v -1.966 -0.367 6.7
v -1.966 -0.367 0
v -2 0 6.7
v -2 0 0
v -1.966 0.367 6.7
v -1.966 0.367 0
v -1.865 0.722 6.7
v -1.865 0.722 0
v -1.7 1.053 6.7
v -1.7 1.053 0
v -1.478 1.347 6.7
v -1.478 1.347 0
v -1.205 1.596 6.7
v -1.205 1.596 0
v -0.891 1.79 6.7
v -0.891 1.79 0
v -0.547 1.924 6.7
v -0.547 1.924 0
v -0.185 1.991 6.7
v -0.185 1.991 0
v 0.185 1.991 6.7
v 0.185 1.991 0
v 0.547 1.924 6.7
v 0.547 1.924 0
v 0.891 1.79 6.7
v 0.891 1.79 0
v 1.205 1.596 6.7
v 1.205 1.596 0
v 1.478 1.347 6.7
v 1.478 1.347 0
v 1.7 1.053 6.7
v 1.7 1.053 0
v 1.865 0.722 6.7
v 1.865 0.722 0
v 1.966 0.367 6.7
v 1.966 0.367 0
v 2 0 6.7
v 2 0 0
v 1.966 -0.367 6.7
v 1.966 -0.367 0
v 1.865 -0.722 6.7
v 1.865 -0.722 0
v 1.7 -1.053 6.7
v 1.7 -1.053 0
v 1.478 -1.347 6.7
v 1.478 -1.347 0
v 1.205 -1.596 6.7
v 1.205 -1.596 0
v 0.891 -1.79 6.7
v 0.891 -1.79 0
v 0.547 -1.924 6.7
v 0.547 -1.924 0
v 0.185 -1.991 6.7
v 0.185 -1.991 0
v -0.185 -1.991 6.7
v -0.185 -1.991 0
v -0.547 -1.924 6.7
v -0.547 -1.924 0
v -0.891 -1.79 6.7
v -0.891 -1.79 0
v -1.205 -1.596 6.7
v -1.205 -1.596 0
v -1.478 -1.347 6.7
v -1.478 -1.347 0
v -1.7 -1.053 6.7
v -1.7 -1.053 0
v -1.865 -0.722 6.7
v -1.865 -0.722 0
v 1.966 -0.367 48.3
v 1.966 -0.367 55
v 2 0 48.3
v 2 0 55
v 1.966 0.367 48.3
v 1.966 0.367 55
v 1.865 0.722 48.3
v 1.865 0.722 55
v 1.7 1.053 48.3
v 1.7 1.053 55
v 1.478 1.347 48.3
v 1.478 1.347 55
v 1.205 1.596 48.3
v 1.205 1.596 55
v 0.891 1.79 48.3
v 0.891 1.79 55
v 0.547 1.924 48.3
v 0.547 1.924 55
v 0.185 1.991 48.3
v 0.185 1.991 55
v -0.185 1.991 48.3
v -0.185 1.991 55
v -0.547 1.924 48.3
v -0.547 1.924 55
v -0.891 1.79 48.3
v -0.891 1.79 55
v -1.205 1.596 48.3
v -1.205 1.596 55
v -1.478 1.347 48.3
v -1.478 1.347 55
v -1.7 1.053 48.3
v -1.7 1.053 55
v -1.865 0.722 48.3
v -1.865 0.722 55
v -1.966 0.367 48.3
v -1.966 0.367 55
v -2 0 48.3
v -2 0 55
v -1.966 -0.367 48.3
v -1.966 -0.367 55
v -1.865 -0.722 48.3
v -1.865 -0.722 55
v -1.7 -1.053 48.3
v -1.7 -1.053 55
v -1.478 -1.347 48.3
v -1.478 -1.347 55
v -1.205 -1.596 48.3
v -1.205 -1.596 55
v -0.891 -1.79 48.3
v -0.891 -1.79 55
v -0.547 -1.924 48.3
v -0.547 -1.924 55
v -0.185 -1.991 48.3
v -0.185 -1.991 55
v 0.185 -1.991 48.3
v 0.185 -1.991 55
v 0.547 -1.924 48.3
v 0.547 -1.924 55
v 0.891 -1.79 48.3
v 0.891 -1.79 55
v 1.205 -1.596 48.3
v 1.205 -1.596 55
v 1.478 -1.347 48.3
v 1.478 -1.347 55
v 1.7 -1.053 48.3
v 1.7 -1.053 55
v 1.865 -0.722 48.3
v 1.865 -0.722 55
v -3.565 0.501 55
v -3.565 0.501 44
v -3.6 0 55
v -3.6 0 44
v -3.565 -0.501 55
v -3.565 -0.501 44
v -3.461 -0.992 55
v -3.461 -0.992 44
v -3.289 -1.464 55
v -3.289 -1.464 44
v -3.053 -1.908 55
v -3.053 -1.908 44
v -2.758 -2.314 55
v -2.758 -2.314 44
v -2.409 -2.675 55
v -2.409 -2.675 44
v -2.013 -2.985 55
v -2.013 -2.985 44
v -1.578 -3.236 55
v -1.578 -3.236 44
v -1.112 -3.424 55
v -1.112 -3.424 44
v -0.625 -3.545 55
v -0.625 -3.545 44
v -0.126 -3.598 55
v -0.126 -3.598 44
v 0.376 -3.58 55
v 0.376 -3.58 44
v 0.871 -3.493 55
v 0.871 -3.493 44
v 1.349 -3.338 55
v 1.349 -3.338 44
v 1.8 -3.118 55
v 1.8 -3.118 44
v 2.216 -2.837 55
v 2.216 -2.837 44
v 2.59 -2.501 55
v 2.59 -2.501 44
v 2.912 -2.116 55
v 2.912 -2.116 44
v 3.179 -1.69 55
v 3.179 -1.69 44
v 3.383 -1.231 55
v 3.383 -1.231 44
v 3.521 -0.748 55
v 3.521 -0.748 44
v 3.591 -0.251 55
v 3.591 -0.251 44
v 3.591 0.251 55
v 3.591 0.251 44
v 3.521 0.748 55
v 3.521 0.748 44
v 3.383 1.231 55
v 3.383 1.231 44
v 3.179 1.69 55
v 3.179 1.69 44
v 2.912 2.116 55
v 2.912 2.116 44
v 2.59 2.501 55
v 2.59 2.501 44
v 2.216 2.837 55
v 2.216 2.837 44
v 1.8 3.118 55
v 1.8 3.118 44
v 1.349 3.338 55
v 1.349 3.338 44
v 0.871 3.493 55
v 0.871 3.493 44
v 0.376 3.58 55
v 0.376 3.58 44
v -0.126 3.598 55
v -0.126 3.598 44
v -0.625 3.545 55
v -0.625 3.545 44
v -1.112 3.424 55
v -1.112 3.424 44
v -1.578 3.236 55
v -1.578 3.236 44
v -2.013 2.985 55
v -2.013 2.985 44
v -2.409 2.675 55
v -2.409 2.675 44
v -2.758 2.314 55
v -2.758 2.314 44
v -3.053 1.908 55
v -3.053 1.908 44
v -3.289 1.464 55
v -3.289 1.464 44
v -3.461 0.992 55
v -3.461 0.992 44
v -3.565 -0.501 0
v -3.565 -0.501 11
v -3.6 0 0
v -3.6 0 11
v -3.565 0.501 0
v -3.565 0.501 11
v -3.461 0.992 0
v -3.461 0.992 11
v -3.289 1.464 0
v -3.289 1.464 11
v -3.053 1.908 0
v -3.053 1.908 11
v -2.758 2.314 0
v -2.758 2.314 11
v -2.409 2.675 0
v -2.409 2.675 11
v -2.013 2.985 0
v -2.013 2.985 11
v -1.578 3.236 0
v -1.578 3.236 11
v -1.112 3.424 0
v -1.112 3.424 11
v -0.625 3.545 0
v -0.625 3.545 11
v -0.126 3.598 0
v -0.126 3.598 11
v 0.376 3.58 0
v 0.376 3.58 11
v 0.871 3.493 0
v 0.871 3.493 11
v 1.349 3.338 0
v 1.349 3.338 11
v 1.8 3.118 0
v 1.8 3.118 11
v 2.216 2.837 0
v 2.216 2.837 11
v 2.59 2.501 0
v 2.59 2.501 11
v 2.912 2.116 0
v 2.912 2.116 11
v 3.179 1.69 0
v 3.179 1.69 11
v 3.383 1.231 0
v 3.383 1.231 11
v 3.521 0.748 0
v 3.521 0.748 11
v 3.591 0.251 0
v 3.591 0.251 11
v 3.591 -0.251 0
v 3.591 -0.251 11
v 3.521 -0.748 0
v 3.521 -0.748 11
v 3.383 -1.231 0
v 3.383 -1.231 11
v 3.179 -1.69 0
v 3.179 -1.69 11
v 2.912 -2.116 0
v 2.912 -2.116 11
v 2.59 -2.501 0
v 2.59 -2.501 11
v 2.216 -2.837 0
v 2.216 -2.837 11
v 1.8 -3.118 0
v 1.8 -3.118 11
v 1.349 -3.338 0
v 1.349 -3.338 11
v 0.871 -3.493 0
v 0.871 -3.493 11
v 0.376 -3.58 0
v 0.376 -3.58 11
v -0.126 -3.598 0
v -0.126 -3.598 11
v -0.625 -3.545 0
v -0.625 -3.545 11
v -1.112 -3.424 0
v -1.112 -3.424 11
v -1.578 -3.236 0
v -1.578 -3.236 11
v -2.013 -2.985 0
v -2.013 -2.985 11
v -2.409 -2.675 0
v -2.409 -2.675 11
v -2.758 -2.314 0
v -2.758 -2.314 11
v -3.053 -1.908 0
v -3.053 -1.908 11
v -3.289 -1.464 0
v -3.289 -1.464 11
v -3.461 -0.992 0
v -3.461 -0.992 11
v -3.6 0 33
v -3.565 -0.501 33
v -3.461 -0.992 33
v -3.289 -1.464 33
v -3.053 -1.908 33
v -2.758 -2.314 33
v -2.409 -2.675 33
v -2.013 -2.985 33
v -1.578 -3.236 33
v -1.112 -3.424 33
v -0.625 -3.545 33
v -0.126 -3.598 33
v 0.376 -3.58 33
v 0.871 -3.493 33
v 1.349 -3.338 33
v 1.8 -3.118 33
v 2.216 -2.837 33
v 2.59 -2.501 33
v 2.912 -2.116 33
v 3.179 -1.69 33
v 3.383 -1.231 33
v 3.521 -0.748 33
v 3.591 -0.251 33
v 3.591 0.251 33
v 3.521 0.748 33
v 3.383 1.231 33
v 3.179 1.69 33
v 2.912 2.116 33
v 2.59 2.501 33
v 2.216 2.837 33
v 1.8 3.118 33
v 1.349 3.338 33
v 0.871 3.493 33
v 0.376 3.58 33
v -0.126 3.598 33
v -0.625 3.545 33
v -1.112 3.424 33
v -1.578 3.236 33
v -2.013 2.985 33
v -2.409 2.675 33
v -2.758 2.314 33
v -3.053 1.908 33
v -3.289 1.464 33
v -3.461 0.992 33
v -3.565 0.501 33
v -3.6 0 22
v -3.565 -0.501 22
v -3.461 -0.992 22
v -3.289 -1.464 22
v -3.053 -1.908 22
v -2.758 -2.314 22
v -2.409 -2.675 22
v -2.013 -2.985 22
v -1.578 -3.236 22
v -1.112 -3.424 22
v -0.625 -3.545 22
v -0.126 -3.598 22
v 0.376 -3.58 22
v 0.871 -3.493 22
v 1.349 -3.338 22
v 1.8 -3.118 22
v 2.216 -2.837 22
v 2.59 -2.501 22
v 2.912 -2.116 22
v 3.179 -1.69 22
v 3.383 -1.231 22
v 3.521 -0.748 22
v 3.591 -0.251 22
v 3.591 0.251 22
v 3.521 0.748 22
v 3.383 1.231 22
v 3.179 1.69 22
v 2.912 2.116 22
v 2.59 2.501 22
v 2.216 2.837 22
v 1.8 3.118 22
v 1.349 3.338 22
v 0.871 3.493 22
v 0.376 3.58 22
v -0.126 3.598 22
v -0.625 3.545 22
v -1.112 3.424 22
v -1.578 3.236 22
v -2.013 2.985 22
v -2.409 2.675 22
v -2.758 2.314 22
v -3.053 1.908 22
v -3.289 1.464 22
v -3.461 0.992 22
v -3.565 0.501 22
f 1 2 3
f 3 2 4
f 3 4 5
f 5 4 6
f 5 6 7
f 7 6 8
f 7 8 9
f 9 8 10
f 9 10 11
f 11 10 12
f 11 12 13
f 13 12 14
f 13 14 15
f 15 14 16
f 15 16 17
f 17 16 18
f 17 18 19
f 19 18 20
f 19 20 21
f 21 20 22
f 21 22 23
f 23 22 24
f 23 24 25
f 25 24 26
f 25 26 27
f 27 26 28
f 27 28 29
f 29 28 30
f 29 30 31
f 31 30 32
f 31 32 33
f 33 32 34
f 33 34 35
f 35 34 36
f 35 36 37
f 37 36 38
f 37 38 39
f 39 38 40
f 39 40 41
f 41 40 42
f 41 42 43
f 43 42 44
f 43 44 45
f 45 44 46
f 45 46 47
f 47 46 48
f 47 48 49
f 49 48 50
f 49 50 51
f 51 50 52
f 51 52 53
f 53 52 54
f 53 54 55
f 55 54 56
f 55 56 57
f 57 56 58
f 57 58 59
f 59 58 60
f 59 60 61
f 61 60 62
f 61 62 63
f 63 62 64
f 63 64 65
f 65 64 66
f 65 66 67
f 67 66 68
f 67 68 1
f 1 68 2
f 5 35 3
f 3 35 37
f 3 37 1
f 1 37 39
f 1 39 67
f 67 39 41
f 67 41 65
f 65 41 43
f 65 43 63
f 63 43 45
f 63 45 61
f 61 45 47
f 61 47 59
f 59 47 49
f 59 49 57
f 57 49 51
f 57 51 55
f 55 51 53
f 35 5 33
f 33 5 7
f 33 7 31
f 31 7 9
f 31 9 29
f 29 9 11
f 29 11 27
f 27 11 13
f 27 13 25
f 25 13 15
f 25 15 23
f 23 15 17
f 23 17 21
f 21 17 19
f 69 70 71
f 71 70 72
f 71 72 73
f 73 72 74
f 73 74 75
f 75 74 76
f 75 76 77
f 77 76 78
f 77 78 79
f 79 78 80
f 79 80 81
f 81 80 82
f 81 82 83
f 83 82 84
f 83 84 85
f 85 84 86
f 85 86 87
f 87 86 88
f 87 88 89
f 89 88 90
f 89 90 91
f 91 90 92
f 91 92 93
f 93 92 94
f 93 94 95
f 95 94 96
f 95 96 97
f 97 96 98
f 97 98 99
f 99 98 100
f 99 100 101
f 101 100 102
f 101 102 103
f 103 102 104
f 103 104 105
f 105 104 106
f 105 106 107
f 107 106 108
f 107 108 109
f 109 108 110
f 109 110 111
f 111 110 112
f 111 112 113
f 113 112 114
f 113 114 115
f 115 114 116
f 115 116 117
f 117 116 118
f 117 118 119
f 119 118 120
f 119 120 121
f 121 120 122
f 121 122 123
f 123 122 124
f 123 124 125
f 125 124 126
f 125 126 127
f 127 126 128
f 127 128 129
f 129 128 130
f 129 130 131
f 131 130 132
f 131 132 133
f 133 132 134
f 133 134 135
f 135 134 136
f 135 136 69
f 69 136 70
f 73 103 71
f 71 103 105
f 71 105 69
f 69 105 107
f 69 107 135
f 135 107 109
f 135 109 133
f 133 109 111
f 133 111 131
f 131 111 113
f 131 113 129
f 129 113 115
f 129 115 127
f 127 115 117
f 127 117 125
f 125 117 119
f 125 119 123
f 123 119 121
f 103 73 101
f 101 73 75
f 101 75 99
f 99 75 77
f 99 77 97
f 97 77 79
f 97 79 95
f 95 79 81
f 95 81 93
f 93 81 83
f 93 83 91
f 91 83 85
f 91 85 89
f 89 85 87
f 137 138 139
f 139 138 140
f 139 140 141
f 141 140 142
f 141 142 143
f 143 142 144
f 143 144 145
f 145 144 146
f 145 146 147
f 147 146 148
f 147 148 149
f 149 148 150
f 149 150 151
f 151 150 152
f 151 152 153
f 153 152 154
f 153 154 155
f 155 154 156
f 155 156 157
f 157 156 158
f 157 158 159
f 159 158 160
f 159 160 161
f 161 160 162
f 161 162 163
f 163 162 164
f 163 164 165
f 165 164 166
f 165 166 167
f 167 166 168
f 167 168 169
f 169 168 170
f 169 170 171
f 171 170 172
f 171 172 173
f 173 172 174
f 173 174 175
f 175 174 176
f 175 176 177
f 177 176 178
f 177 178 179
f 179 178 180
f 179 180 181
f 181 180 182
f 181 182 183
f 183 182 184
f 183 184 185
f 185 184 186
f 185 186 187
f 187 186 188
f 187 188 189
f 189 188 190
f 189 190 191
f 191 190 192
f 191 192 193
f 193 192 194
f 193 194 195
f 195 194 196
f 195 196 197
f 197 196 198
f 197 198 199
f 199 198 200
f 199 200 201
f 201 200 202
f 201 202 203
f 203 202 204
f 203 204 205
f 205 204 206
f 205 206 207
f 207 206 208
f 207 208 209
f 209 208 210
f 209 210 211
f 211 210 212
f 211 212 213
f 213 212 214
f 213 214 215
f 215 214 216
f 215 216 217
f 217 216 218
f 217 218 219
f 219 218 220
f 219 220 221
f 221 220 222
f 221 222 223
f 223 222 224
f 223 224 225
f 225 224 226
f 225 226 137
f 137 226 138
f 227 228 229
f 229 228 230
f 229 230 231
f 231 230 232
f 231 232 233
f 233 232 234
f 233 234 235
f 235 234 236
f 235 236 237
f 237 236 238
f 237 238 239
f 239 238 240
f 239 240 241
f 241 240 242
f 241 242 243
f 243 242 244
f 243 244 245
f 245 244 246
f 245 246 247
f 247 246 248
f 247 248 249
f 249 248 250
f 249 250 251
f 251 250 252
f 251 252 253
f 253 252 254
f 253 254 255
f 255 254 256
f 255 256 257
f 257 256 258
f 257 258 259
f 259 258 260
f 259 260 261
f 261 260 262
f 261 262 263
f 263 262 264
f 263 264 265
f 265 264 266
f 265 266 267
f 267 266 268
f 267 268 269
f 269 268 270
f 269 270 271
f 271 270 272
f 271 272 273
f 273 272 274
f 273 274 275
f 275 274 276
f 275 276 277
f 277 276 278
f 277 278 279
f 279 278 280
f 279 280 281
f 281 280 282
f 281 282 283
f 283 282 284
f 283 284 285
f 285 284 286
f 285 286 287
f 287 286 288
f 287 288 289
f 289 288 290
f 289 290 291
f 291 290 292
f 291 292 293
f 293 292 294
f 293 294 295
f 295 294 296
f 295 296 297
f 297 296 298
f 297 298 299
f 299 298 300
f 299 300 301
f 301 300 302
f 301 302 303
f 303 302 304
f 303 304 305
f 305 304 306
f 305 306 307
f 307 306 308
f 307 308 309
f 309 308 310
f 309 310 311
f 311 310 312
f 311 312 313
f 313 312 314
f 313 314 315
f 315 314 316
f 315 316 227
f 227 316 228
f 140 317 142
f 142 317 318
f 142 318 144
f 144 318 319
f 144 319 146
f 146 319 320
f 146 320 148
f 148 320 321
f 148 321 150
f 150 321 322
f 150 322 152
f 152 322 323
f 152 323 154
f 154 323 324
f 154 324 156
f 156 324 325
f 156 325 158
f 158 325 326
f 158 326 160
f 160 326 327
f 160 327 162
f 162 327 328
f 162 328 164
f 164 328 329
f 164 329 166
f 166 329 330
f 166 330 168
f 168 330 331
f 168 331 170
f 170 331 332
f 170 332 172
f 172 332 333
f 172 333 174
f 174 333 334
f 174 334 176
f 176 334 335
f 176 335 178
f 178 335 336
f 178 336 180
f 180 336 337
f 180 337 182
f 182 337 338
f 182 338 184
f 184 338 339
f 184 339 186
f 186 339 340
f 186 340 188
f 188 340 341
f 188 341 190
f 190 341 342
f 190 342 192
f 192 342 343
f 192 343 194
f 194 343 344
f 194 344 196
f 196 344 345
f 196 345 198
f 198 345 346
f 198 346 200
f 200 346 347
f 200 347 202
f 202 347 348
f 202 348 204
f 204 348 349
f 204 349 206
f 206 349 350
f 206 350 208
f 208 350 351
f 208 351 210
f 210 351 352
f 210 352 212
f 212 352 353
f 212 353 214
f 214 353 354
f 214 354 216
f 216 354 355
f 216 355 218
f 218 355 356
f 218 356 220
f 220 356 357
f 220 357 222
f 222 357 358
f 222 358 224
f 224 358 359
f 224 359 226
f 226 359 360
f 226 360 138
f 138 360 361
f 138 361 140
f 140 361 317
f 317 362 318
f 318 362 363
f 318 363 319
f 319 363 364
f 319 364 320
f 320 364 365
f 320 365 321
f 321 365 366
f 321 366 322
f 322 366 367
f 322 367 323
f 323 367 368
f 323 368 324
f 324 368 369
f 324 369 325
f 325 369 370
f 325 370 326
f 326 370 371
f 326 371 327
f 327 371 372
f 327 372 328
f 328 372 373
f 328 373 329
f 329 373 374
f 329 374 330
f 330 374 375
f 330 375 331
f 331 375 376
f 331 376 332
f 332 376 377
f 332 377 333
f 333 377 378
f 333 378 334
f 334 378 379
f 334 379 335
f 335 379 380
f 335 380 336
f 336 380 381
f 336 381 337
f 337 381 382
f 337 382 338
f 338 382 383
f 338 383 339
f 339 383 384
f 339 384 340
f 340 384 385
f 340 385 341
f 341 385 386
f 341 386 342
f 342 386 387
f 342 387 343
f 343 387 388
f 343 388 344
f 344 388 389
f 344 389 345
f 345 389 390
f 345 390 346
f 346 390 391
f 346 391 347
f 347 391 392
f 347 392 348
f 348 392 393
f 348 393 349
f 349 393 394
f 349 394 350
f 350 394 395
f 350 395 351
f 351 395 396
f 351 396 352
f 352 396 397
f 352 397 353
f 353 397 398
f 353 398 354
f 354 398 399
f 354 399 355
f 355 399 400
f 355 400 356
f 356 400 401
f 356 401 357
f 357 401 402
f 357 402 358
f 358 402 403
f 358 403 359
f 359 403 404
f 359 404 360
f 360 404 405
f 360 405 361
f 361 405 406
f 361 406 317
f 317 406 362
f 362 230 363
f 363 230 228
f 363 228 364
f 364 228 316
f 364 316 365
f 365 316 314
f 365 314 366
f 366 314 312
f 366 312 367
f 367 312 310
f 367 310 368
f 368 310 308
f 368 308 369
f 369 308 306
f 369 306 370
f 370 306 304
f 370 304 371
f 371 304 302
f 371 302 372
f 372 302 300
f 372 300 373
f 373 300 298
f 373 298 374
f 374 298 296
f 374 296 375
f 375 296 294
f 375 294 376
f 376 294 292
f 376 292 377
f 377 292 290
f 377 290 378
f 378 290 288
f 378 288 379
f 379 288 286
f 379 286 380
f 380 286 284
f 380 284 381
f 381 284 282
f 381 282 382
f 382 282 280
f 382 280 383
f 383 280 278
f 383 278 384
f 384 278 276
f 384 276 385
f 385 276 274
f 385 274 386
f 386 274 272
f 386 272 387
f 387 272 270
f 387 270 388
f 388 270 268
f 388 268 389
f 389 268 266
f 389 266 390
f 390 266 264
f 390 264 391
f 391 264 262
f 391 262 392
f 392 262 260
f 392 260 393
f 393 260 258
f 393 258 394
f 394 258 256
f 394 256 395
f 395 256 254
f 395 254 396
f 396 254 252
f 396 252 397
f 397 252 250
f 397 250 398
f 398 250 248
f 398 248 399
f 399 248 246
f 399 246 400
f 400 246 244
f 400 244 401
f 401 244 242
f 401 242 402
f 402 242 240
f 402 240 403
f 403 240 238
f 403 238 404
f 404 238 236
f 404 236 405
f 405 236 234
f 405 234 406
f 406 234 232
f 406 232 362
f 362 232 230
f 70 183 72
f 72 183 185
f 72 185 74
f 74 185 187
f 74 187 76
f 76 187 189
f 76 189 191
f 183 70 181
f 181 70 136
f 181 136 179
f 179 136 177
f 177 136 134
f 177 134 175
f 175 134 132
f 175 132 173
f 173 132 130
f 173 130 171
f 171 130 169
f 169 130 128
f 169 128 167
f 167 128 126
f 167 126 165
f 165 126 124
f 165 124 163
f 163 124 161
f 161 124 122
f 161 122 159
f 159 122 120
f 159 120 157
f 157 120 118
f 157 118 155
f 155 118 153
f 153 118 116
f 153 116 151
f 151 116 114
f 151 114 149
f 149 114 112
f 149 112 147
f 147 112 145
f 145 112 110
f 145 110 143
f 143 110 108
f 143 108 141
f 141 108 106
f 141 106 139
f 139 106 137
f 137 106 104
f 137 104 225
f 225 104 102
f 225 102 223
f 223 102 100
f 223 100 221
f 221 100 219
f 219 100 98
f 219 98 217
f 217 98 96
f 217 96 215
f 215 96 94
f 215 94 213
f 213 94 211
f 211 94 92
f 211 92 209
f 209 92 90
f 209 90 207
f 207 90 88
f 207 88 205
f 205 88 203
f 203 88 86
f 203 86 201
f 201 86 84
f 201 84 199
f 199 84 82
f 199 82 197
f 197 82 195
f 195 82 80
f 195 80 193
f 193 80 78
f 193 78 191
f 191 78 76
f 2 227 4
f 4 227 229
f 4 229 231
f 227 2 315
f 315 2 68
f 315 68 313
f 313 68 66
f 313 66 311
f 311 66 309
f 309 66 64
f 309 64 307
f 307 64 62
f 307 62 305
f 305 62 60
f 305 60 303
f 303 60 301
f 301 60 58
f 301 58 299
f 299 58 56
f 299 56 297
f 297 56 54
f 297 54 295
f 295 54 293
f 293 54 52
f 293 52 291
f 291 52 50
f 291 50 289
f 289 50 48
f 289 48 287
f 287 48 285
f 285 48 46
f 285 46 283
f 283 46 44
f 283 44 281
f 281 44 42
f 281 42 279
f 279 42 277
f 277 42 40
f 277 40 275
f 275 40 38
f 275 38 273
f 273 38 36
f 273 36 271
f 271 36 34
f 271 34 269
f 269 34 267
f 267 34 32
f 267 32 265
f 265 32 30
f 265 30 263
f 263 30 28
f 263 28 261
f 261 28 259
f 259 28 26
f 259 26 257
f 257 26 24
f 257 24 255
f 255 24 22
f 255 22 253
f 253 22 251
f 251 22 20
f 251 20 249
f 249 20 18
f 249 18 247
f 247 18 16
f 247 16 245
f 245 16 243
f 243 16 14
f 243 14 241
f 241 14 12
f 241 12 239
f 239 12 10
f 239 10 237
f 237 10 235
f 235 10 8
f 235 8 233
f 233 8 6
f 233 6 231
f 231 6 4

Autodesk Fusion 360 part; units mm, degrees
sketch "Sketch1" plane through (0, 0, 0) normal (0, 0, 1) x (1, 0, 0)
  circle A0 centre (0, 0) radius 3.6
  dimension "d1" = 7.2
extrude "Extrude1" add sketch "Sketch1" along normal blind 55
sketch "Sketch2" plane through (0, 0, 55) normal (0, 0, 1) x (-1, 0, 0)
  circle A0 centre (0, 0) radius 3.6
  circle A1 centre (0, 0) radius 2
  dimension "d4" = 4
extrude "Extrude2" cut sketch "Sketch2" against normal blind 6.7 contours A1
sketch "Sketch3" plane through (0, 0, 0) normal (0, 0, -1) x (1, 0, 0)
  circle A0 centre (0, 0) radius 3.6
  circle A1 centre (0, 0) radius 2
  dimension "d7" = 4
extrude "Extrude3" cut sketch "Sketch3" against normal blind 6.7 contours A1
